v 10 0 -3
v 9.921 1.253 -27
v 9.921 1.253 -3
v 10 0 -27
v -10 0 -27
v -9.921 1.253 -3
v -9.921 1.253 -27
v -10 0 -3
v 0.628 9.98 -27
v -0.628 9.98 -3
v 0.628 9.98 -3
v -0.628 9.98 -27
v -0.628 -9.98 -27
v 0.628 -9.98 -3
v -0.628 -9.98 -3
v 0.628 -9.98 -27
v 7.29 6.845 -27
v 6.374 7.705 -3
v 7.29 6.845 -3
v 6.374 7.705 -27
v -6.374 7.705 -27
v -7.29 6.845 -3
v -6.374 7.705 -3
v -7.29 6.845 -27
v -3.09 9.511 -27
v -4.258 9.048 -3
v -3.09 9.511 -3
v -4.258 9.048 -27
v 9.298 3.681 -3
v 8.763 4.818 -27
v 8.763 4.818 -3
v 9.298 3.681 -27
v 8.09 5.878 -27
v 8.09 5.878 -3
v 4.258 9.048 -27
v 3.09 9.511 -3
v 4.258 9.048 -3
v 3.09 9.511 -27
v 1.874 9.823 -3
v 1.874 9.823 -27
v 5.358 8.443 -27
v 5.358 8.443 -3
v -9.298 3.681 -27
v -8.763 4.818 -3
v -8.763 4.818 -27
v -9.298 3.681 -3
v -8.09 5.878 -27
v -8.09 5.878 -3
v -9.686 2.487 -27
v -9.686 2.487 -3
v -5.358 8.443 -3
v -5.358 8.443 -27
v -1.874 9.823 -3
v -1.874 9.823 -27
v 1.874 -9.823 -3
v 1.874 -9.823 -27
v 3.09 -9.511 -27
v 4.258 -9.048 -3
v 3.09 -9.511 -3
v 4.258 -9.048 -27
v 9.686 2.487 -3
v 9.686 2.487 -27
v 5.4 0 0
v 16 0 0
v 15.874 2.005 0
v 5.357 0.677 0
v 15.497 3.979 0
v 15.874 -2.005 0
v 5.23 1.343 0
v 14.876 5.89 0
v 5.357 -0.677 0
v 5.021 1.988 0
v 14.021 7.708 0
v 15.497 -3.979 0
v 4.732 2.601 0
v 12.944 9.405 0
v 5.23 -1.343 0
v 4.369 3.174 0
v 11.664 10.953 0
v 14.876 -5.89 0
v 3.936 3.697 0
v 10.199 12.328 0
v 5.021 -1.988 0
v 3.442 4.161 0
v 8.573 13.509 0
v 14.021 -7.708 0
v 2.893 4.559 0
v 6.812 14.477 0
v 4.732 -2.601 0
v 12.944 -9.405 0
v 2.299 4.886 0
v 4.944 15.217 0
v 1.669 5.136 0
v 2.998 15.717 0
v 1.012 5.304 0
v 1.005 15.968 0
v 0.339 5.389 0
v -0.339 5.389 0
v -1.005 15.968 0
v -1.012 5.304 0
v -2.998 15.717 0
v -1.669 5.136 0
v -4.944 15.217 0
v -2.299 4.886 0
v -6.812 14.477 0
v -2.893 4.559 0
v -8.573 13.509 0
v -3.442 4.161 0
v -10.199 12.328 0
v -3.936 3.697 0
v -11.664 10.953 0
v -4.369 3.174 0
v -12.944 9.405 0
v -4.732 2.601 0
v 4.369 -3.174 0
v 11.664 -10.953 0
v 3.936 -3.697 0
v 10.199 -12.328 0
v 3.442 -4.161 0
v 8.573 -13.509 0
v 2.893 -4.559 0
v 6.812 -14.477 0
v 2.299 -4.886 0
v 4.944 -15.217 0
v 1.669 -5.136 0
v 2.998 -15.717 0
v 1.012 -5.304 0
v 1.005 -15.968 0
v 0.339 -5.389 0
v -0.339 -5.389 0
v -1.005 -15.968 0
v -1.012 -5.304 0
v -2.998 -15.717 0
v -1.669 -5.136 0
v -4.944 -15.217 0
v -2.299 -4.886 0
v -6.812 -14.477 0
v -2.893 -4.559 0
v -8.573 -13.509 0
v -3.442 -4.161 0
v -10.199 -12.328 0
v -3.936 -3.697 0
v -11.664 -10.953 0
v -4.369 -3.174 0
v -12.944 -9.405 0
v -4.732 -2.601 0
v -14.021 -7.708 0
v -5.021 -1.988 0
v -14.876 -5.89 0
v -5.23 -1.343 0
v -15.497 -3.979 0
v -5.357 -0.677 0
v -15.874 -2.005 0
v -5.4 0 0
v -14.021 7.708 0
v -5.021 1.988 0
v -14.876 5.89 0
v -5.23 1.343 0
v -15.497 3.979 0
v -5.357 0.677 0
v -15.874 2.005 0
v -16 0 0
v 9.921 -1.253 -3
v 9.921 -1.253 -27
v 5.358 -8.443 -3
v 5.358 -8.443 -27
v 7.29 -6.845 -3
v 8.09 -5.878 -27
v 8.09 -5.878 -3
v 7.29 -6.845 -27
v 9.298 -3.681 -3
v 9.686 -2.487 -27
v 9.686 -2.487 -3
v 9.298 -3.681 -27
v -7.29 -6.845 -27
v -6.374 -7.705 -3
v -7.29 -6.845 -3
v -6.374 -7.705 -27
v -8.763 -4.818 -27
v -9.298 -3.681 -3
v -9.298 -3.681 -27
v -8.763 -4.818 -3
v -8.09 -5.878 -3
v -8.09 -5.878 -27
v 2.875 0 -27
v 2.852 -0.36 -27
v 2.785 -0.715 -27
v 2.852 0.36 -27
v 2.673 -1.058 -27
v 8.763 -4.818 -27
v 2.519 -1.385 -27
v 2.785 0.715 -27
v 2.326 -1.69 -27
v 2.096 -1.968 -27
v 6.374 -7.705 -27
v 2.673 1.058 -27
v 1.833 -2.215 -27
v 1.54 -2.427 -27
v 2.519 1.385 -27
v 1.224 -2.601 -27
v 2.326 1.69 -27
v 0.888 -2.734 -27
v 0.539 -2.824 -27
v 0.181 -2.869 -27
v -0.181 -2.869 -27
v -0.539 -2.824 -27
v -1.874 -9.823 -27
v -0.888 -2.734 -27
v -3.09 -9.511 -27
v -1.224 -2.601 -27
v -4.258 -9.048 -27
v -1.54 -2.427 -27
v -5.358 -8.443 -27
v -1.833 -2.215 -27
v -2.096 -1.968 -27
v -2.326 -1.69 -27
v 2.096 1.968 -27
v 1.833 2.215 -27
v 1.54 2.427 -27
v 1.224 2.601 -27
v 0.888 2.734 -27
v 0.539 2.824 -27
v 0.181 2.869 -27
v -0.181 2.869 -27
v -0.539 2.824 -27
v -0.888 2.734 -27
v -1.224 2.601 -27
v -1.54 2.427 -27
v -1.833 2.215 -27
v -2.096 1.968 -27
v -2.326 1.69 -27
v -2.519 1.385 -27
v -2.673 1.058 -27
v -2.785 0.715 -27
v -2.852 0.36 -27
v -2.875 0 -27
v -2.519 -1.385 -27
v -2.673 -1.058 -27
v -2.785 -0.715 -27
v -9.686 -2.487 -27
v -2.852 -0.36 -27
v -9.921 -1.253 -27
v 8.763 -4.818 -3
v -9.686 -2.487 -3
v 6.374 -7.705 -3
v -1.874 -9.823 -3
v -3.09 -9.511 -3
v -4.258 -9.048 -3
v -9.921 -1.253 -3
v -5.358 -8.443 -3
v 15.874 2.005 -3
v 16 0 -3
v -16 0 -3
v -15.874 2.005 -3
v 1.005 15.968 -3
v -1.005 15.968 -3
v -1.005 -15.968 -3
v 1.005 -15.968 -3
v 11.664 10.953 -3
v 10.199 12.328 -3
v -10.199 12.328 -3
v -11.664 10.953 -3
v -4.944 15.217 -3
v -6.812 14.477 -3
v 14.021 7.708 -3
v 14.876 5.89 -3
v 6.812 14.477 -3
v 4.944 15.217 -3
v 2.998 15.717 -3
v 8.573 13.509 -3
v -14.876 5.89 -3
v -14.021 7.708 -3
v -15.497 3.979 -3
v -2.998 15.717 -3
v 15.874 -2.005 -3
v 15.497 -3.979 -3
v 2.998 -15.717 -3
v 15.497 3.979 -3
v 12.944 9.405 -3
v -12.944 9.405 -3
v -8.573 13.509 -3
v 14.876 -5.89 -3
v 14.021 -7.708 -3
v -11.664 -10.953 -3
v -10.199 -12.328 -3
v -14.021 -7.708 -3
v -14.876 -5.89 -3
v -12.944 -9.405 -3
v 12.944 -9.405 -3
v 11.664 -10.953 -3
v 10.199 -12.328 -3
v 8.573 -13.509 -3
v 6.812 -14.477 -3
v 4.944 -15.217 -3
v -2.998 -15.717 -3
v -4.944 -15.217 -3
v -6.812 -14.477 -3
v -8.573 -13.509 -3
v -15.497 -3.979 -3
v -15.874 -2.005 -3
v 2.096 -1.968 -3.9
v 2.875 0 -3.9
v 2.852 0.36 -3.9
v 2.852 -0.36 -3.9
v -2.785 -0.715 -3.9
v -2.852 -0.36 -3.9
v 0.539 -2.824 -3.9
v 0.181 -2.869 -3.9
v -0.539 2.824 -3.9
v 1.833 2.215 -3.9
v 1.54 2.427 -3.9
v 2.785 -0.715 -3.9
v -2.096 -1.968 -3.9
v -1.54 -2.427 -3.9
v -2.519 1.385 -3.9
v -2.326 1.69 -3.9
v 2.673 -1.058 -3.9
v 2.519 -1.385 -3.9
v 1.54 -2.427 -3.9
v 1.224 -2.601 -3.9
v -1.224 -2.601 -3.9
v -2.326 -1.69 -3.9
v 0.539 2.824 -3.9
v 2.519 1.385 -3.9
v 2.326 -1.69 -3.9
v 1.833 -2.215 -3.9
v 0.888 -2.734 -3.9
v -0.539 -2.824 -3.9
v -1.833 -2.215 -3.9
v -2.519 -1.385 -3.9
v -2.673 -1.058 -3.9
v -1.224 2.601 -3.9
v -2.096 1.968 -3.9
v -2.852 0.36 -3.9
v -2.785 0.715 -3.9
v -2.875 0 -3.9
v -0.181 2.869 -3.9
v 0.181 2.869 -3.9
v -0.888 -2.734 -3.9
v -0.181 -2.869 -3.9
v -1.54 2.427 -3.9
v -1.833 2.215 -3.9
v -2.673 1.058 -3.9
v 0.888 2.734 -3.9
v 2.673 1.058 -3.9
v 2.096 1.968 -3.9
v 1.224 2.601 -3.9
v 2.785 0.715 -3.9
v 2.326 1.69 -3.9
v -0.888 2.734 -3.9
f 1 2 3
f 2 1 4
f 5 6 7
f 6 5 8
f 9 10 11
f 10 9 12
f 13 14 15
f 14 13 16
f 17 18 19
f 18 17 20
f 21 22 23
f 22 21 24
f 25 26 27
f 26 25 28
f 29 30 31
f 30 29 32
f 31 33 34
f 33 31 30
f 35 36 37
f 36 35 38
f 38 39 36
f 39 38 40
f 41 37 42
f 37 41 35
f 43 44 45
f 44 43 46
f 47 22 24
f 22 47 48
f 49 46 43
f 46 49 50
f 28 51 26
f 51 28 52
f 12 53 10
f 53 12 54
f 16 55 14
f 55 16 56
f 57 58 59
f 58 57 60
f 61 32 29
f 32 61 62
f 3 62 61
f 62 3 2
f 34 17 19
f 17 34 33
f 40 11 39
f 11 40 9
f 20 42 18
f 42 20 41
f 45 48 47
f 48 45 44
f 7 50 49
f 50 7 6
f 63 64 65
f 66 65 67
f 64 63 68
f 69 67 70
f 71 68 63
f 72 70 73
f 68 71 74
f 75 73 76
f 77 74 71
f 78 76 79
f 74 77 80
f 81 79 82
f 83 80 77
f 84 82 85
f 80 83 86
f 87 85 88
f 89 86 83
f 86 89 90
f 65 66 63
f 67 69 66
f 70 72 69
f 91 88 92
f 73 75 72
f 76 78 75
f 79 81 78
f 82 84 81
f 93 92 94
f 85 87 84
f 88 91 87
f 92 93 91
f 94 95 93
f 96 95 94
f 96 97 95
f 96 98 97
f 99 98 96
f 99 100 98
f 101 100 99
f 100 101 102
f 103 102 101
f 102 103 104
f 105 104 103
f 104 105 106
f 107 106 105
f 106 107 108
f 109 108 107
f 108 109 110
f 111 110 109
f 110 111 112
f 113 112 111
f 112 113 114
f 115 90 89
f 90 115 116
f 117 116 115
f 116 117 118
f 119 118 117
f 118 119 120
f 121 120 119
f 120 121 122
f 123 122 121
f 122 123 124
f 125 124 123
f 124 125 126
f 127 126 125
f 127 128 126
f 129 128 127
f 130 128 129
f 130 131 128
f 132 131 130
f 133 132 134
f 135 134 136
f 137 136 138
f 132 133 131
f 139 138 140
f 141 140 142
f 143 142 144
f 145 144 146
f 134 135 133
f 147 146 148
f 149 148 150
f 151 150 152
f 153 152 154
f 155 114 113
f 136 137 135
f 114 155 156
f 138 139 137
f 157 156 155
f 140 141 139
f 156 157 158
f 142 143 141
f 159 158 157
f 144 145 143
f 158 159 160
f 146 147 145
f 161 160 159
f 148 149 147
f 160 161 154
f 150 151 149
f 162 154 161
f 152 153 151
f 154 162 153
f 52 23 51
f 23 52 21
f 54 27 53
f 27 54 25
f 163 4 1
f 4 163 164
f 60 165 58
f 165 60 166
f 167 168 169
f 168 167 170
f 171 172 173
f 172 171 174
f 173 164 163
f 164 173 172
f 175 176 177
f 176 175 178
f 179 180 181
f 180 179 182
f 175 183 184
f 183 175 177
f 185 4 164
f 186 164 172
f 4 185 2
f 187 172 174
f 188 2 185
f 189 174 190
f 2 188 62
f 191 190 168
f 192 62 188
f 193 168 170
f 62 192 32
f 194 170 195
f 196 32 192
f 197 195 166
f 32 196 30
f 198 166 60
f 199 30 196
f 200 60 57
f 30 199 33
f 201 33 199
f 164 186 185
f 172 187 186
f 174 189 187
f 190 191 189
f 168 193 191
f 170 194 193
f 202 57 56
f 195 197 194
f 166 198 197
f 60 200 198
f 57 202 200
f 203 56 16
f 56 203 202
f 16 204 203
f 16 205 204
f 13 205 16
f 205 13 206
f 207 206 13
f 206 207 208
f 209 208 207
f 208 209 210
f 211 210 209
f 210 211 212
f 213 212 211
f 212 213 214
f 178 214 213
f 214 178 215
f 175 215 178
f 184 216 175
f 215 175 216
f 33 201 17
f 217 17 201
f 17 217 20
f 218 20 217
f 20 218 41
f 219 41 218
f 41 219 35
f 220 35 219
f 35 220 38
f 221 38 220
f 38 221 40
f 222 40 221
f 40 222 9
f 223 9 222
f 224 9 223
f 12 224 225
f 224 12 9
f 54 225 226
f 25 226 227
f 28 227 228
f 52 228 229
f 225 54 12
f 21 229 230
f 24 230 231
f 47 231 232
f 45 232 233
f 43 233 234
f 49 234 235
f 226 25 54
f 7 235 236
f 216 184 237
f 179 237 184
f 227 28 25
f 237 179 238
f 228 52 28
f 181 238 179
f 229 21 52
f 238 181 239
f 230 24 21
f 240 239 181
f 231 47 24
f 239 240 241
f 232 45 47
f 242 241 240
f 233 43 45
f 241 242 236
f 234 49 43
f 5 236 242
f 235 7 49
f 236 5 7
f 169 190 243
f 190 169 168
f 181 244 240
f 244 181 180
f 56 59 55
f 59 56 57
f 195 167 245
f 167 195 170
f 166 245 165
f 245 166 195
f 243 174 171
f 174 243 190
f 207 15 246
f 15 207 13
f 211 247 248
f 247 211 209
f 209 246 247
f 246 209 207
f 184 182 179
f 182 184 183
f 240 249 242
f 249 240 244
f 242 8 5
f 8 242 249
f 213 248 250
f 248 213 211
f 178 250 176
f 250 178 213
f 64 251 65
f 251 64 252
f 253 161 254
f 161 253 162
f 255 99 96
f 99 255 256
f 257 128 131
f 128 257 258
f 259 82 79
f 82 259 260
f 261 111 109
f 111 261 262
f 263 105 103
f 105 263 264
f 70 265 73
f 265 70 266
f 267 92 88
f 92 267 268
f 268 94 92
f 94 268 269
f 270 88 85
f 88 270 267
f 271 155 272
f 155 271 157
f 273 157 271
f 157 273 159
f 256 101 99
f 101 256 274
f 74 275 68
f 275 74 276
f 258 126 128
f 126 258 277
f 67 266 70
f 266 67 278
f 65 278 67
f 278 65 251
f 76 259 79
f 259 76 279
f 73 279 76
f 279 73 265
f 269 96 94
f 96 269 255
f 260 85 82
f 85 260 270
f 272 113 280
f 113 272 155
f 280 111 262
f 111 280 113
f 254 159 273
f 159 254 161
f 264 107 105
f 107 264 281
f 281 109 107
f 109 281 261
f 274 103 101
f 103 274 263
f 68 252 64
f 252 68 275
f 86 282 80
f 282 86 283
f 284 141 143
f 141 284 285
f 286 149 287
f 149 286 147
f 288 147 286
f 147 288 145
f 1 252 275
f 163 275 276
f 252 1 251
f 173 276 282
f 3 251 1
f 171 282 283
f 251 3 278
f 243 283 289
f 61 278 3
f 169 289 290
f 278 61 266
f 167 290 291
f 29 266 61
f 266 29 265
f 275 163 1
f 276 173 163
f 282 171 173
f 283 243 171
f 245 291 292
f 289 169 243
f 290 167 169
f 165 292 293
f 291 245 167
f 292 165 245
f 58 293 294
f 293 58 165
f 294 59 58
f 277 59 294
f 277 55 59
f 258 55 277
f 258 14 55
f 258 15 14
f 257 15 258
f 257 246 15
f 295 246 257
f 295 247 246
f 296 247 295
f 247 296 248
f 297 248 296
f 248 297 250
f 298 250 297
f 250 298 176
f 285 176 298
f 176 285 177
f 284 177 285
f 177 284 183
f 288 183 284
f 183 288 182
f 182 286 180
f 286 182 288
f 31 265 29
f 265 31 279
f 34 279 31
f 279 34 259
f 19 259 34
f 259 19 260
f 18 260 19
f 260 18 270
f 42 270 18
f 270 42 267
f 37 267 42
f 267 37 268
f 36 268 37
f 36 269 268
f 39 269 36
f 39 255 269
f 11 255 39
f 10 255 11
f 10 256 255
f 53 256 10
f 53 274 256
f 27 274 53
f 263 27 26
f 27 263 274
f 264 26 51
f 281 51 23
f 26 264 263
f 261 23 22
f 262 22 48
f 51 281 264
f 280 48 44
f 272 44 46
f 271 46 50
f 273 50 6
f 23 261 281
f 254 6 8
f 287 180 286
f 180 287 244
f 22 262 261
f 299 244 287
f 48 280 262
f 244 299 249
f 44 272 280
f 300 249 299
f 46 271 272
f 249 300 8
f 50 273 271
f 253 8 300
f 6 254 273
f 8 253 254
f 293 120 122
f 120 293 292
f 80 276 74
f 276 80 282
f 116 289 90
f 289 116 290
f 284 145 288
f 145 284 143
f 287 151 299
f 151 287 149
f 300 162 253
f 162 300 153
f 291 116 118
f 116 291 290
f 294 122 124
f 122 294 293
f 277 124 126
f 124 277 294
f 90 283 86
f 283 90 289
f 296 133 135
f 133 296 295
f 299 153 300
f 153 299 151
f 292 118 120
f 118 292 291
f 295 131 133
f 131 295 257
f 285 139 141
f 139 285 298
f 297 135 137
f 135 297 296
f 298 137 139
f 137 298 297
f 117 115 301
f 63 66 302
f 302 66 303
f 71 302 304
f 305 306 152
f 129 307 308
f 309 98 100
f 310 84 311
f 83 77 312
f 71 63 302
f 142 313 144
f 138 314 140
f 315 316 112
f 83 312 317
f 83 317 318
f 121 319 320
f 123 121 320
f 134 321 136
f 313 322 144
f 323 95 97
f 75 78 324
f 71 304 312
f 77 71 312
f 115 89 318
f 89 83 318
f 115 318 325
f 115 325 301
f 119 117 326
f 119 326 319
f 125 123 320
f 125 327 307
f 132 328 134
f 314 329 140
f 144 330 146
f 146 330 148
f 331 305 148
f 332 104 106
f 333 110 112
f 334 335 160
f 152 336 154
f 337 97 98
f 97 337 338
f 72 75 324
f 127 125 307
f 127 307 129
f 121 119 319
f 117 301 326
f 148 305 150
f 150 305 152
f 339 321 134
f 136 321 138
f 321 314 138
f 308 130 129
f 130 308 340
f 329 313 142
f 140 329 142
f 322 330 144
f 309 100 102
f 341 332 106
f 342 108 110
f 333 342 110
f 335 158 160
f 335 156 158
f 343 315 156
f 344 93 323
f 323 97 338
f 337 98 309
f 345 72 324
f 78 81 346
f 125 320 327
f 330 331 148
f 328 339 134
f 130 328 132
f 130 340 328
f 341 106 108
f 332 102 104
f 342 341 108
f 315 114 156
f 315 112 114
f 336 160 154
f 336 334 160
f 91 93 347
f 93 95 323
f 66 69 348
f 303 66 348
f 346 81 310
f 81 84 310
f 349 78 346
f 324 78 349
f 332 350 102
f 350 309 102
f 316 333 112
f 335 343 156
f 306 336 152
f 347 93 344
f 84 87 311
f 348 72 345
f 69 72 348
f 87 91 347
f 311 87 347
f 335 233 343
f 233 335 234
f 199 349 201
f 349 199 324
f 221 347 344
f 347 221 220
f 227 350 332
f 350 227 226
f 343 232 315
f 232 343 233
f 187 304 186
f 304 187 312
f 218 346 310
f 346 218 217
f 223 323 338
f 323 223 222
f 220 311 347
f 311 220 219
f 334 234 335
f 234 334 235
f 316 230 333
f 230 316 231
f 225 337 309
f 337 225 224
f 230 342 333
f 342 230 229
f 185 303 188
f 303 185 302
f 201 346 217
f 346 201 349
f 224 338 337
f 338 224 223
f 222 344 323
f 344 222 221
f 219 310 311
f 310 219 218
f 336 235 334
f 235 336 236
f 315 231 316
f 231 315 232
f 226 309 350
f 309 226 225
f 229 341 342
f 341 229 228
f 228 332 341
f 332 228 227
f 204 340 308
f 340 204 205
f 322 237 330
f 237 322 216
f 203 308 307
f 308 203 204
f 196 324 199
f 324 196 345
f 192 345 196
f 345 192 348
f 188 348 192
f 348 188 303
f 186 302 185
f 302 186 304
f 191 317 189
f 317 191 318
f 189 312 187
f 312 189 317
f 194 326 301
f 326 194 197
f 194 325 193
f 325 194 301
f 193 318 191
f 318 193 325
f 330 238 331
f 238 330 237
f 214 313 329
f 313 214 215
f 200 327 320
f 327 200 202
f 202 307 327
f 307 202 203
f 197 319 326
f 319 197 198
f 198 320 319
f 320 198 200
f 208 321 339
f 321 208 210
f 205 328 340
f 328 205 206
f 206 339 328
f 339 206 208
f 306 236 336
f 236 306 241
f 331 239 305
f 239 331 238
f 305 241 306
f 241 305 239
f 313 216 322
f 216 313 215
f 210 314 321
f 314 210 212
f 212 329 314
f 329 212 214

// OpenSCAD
$fn = 50;


difference() {
	union() {
		translate(v = [0, 0, -27.0000000000]) {
			cylinder(h = 27, r = 10.0000000000);
		}
		translate(v = [0, 0, -3.0000000000]) {
			cylinder(h = 3, r = 16.0000000000);
		}
	}
	union() {
		translate(v = [0, 0, 0]) {
			rotate(a = [0, 0, 0]) {
				difference() {
					union() {
						#translate(v = [0, 0, -27.0000000000]) {
							cylinder(h = 27, r = 2.6000000000);
						}
						#translate(v = [0, 0, -3.9000000000]) {
							cylinder(h = 3.9000000000, r = 10.0000000000, r1 = 2.8750000000, r2 = 5.4000000000);
						}
						#translate(v = [0, 0, -27.0000000000]) {
							cylinder(h = 27, r = 2.8750000000);
						}
						#translate(v = [0, 0, -27.0000000000]) {
							cylinder(h = 27, r = 2.6000000000);
						}
					}
					union();
				}
			}
		}
	}
}
